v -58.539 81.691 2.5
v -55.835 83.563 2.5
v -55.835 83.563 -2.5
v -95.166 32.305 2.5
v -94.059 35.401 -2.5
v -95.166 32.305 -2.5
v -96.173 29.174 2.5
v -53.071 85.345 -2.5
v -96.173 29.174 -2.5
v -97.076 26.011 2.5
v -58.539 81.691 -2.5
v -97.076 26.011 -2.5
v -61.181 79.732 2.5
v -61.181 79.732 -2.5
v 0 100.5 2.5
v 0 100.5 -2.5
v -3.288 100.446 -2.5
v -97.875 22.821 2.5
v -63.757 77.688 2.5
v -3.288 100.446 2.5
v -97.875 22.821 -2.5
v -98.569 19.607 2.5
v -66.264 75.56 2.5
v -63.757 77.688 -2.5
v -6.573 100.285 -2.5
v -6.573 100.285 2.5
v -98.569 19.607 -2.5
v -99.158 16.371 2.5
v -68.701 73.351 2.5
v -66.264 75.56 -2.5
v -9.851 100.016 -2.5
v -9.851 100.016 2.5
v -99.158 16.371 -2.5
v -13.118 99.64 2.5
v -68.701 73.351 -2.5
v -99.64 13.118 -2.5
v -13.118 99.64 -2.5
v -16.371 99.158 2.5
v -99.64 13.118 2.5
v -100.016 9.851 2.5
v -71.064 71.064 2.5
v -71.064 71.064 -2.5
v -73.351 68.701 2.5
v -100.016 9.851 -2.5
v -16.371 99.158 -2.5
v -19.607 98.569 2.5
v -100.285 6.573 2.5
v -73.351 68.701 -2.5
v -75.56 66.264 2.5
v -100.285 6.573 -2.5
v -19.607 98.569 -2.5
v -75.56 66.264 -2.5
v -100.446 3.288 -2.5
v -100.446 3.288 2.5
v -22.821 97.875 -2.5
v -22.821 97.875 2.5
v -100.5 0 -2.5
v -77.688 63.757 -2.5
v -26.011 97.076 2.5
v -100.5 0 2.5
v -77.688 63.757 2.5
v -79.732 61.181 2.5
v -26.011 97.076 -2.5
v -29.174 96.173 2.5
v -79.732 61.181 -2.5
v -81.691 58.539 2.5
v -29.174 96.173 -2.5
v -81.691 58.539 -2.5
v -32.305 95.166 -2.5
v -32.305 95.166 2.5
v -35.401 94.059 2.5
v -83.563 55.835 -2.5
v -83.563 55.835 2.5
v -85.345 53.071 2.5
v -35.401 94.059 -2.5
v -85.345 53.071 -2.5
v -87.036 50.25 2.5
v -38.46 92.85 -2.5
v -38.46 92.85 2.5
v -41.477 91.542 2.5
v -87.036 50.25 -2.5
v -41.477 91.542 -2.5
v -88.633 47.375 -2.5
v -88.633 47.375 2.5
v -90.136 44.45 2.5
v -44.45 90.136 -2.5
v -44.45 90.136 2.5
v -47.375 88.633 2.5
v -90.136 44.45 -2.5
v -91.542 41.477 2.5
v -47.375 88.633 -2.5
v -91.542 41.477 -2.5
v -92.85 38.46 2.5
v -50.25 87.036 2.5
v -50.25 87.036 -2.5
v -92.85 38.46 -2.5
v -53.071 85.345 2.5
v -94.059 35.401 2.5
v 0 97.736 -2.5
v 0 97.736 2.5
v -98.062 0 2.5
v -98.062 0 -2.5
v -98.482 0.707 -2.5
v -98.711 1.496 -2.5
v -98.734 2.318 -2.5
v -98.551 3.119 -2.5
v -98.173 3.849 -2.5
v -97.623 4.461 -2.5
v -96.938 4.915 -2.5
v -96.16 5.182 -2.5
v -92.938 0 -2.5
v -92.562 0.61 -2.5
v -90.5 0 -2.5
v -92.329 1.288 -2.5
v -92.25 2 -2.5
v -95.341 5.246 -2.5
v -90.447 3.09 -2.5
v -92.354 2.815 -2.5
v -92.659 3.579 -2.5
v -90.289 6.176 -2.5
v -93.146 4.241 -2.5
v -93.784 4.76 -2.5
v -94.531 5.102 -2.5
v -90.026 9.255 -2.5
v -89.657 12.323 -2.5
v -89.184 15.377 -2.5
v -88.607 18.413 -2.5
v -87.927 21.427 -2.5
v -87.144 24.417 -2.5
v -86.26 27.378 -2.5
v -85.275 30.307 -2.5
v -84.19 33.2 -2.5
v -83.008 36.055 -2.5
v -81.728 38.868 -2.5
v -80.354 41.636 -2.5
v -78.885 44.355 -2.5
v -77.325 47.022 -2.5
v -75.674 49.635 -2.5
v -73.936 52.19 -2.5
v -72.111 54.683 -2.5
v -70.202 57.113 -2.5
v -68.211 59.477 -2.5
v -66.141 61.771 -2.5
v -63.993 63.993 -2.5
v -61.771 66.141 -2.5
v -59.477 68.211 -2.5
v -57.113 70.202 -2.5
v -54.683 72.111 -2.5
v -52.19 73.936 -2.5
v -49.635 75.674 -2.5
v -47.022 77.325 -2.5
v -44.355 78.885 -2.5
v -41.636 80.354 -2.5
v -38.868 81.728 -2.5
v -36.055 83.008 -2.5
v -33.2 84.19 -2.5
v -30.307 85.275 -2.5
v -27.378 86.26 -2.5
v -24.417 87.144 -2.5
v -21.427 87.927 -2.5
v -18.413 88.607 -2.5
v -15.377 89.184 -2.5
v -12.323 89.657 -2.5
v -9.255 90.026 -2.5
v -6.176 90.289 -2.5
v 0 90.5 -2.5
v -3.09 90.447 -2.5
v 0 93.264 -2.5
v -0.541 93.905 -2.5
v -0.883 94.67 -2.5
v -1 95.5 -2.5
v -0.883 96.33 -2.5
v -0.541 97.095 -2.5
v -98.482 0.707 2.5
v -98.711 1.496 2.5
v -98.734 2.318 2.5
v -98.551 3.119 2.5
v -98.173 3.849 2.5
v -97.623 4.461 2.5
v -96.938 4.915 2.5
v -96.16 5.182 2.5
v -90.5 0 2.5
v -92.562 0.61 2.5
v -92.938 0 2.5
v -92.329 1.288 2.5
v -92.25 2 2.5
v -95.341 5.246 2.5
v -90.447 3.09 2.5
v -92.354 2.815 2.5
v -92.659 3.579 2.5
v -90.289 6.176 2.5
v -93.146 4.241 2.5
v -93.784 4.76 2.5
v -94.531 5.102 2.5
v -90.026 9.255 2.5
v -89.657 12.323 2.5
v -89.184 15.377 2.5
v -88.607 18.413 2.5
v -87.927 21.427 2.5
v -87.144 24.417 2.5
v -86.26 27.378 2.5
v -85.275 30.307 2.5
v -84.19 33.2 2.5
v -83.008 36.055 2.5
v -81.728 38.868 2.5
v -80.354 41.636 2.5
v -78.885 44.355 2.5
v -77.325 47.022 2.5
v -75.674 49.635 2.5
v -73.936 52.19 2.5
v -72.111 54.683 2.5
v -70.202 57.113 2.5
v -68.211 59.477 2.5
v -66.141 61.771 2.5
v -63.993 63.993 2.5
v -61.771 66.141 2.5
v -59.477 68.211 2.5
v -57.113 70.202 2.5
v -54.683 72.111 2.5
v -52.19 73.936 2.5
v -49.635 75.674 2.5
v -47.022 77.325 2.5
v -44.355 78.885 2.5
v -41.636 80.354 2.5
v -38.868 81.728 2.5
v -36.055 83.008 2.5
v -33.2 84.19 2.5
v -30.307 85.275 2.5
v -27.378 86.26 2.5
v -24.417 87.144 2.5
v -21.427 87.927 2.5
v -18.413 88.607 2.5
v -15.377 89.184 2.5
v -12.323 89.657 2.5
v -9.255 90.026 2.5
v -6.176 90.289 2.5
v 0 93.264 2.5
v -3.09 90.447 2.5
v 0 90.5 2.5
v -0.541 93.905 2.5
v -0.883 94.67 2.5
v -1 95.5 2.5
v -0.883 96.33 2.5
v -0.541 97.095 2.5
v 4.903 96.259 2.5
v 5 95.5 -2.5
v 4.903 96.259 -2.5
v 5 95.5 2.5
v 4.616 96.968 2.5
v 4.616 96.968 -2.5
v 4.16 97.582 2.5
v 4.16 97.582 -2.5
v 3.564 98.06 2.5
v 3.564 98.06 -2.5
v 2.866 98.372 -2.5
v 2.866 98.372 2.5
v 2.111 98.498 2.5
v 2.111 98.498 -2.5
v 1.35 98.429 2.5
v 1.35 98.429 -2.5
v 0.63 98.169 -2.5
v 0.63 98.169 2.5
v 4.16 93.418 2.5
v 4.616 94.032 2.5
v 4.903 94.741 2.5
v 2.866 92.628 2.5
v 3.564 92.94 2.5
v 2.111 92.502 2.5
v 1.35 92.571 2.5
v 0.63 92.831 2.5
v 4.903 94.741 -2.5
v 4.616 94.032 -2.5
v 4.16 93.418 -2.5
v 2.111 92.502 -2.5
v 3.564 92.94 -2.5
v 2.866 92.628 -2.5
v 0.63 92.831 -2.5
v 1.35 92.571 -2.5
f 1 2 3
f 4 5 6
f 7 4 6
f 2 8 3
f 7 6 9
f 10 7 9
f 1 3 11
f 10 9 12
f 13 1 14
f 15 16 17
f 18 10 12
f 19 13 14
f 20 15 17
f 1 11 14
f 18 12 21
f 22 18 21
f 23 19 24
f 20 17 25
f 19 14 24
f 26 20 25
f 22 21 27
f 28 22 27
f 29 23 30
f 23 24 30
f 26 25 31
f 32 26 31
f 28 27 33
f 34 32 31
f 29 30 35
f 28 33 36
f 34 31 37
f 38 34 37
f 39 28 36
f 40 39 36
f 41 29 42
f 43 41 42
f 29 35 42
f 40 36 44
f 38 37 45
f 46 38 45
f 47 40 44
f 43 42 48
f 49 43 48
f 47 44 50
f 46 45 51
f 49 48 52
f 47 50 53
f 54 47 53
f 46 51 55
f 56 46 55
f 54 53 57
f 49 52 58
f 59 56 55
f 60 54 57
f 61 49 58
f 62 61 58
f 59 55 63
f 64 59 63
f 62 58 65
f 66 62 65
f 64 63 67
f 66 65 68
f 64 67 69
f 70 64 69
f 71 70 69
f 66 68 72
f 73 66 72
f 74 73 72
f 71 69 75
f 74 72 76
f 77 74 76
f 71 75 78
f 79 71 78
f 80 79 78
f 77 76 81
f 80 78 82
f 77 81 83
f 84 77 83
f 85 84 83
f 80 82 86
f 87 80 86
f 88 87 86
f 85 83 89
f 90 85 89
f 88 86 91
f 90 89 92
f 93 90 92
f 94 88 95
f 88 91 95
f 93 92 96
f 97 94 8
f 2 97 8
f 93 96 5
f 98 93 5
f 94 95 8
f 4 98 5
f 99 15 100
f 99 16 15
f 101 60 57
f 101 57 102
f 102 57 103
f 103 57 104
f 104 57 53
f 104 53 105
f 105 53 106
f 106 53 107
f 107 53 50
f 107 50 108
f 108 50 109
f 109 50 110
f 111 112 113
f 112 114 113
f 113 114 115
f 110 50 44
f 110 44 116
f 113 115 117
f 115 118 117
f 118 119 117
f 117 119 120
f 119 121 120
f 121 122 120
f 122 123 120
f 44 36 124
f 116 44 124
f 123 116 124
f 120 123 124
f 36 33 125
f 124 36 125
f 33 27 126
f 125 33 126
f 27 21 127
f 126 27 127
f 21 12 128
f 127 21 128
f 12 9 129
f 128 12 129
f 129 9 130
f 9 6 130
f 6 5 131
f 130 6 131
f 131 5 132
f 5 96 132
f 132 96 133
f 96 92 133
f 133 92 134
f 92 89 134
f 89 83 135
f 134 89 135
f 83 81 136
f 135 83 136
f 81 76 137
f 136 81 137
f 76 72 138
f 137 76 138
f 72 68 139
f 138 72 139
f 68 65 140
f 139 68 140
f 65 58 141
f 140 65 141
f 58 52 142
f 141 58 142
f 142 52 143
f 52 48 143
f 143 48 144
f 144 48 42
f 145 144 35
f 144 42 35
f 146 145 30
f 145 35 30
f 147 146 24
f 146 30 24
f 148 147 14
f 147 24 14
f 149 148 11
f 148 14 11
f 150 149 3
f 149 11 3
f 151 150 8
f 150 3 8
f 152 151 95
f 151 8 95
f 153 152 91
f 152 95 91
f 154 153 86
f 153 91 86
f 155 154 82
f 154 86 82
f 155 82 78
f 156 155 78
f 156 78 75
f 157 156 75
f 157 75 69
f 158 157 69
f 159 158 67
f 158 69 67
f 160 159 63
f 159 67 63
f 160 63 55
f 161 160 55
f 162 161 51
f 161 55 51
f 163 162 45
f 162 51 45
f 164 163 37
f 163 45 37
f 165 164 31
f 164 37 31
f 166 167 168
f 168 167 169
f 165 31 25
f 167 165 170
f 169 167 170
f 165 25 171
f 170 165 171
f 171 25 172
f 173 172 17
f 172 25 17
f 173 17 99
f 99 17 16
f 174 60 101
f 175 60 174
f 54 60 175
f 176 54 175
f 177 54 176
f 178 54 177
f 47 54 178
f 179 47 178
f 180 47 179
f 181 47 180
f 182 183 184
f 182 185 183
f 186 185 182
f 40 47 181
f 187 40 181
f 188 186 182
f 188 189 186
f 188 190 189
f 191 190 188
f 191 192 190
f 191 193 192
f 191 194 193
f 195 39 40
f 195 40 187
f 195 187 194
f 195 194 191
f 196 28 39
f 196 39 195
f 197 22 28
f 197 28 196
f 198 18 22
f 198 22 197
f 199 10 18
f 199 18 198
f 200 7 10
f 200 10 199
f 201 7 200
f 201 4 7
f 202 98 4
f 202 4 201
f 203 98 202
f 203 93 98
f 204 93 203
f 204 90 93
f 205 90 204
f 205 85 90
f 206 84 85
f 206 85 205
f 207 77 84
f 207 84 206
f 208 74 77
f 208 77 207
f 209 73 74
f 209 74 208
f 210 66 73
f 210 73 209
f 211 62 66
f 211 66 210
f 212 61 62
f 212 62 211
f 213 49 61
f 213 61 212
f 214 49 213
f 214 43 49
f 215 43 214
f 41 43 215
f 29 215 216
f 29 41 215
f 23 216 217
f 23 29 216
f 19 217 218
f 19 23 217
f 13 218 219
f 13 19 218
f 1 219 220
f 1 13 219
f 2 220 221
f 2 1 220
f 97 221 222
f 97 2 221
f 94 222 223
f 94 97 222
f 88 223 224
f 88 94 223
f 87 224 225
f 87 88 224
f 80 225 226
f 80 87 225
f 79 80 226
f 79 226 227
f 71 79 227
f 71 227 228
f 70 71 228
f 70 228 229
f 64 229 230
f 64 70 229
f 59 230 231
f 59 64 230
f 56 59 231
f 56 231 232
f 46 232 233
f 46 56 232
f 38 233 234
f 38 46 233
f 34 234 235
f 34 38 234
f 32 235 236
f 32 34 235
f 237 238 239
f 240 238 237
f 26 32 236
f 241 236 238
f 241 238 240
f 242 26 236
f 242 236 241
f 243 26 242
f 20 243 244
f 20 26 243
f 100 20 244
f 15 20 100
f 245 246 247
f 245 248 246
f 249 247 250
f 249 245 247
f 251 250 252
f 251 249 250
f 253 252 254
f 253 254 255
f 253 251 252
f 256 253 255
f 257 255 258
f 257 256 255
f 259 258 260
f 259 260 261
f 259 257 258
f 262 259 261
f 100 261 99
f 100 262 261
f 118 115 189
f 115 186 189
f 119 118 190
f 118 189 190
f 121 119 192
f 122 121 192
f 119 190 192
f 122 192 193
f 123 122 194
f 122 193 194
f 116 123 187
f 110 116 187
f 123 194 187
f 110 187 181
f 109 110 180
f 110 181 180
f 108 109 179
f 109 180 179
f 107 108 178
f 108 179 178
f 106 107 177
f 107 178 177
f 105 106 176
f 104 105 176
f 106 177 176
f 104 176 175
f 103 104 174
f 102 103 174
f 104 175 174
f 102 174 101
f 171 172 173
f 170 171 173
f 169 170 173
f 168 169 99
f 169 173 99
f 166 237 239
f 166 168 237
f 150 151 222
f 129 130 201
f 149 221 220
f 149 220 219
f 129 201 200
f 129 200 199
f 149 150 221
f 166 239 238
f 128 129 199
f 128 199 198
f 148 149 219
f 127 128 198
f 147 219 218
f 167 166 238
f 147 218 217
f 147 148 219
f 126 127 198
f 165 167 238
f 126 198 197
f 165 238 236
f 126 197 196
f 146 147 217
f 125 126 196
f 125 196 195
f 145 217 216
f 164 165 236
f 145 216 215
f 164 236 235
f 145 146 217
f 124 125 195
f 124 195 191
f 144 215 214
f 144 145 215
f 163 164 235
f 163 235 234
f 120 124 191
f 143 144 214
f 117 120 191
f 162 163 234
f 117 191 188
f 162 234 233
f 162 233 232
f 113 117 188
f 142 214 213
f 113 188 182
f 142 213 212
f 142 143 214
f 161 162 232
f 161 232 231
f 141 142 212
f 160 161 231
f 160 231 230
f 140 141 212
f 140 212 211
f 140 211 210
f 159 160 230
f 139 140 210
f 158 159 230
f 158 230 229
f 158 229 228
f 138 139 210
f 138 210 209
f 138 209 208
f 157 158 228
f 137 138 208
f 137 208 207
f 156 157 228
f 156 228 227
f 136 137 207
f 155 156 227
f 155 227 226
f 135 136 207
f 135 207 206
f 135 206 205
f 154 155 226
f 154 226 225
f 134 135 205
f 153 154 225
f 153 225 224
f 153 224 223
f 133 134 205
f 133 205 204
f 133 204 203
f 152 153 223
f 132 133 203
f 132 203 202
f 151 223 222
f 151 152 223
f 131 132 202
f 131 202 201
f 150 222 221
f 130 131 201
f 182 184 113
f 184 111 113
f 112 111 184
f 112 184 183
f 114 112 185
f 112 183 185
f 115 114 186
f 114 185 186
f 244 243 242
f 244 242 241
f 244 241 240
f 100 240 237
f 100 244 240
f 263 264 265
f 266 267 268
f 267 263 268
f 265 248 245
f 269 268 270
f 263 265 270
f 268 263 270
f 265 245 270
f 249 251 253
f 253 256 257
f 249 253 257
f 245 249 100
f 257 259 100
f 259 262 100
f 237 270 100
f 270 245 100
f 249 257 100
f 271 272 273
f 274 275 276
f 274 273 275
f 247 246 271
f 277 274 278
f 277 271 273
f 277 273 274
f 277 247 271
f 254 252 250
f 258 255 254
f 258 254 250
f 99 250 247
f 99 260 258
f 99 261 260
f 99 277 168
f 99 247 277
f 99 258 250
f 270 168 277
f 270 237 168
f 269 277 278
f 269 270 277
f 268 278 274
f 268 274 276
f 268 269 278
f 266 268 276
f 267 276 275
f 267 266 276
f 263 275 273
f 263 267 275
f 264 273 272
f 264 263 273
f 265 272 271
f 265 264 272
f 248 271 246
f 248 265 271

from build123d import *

# Parameters (mm, degrees)
PAD_DEPTH    = 2.5
SKETCH001_R  = 3
PAD001_DEPTH = 5
SKETCH002_R  = 3.25
POCKET_DEPTH = 5


with BuildPart() as part:
    # Sketch → Pad (new body, symmetric)
    with BuildSketch(Plane.XY):
        with BuildLine():
            ThreePointArc((0, 90.5), (-63.993164, 63.993164), (-90.5, 0))
            Line((-100.5, 0), (-90.5, 0))
            ThreePointArc((0, 100.5), (-71.064232, 71.064232), (-100.5, 0))
            Line((0, 100.5), (0, 90.5))
        make_face()
    extrude(amount=PAD_DEPTH, both=True)

    # Sketch001 → Pad001 (new body)
    with BuildSketch(Plane.XY.offset(2.5)):
        with Locations((2, 95.5)):
            Circle(SKETCH001_R)
    extrude(amount=-PAD001_DEPTH)

    # Sketch002 → Pocket (cut)
    with BuildSketch(Plane.XY.offset(2.5)):
        with Locations((-95.5, 2)):
            Circle(SKETCH002_R)
    extrude(amount=-POCKET_DEPTH, mode=Mode.SUBTRACT)


solid = part.part
